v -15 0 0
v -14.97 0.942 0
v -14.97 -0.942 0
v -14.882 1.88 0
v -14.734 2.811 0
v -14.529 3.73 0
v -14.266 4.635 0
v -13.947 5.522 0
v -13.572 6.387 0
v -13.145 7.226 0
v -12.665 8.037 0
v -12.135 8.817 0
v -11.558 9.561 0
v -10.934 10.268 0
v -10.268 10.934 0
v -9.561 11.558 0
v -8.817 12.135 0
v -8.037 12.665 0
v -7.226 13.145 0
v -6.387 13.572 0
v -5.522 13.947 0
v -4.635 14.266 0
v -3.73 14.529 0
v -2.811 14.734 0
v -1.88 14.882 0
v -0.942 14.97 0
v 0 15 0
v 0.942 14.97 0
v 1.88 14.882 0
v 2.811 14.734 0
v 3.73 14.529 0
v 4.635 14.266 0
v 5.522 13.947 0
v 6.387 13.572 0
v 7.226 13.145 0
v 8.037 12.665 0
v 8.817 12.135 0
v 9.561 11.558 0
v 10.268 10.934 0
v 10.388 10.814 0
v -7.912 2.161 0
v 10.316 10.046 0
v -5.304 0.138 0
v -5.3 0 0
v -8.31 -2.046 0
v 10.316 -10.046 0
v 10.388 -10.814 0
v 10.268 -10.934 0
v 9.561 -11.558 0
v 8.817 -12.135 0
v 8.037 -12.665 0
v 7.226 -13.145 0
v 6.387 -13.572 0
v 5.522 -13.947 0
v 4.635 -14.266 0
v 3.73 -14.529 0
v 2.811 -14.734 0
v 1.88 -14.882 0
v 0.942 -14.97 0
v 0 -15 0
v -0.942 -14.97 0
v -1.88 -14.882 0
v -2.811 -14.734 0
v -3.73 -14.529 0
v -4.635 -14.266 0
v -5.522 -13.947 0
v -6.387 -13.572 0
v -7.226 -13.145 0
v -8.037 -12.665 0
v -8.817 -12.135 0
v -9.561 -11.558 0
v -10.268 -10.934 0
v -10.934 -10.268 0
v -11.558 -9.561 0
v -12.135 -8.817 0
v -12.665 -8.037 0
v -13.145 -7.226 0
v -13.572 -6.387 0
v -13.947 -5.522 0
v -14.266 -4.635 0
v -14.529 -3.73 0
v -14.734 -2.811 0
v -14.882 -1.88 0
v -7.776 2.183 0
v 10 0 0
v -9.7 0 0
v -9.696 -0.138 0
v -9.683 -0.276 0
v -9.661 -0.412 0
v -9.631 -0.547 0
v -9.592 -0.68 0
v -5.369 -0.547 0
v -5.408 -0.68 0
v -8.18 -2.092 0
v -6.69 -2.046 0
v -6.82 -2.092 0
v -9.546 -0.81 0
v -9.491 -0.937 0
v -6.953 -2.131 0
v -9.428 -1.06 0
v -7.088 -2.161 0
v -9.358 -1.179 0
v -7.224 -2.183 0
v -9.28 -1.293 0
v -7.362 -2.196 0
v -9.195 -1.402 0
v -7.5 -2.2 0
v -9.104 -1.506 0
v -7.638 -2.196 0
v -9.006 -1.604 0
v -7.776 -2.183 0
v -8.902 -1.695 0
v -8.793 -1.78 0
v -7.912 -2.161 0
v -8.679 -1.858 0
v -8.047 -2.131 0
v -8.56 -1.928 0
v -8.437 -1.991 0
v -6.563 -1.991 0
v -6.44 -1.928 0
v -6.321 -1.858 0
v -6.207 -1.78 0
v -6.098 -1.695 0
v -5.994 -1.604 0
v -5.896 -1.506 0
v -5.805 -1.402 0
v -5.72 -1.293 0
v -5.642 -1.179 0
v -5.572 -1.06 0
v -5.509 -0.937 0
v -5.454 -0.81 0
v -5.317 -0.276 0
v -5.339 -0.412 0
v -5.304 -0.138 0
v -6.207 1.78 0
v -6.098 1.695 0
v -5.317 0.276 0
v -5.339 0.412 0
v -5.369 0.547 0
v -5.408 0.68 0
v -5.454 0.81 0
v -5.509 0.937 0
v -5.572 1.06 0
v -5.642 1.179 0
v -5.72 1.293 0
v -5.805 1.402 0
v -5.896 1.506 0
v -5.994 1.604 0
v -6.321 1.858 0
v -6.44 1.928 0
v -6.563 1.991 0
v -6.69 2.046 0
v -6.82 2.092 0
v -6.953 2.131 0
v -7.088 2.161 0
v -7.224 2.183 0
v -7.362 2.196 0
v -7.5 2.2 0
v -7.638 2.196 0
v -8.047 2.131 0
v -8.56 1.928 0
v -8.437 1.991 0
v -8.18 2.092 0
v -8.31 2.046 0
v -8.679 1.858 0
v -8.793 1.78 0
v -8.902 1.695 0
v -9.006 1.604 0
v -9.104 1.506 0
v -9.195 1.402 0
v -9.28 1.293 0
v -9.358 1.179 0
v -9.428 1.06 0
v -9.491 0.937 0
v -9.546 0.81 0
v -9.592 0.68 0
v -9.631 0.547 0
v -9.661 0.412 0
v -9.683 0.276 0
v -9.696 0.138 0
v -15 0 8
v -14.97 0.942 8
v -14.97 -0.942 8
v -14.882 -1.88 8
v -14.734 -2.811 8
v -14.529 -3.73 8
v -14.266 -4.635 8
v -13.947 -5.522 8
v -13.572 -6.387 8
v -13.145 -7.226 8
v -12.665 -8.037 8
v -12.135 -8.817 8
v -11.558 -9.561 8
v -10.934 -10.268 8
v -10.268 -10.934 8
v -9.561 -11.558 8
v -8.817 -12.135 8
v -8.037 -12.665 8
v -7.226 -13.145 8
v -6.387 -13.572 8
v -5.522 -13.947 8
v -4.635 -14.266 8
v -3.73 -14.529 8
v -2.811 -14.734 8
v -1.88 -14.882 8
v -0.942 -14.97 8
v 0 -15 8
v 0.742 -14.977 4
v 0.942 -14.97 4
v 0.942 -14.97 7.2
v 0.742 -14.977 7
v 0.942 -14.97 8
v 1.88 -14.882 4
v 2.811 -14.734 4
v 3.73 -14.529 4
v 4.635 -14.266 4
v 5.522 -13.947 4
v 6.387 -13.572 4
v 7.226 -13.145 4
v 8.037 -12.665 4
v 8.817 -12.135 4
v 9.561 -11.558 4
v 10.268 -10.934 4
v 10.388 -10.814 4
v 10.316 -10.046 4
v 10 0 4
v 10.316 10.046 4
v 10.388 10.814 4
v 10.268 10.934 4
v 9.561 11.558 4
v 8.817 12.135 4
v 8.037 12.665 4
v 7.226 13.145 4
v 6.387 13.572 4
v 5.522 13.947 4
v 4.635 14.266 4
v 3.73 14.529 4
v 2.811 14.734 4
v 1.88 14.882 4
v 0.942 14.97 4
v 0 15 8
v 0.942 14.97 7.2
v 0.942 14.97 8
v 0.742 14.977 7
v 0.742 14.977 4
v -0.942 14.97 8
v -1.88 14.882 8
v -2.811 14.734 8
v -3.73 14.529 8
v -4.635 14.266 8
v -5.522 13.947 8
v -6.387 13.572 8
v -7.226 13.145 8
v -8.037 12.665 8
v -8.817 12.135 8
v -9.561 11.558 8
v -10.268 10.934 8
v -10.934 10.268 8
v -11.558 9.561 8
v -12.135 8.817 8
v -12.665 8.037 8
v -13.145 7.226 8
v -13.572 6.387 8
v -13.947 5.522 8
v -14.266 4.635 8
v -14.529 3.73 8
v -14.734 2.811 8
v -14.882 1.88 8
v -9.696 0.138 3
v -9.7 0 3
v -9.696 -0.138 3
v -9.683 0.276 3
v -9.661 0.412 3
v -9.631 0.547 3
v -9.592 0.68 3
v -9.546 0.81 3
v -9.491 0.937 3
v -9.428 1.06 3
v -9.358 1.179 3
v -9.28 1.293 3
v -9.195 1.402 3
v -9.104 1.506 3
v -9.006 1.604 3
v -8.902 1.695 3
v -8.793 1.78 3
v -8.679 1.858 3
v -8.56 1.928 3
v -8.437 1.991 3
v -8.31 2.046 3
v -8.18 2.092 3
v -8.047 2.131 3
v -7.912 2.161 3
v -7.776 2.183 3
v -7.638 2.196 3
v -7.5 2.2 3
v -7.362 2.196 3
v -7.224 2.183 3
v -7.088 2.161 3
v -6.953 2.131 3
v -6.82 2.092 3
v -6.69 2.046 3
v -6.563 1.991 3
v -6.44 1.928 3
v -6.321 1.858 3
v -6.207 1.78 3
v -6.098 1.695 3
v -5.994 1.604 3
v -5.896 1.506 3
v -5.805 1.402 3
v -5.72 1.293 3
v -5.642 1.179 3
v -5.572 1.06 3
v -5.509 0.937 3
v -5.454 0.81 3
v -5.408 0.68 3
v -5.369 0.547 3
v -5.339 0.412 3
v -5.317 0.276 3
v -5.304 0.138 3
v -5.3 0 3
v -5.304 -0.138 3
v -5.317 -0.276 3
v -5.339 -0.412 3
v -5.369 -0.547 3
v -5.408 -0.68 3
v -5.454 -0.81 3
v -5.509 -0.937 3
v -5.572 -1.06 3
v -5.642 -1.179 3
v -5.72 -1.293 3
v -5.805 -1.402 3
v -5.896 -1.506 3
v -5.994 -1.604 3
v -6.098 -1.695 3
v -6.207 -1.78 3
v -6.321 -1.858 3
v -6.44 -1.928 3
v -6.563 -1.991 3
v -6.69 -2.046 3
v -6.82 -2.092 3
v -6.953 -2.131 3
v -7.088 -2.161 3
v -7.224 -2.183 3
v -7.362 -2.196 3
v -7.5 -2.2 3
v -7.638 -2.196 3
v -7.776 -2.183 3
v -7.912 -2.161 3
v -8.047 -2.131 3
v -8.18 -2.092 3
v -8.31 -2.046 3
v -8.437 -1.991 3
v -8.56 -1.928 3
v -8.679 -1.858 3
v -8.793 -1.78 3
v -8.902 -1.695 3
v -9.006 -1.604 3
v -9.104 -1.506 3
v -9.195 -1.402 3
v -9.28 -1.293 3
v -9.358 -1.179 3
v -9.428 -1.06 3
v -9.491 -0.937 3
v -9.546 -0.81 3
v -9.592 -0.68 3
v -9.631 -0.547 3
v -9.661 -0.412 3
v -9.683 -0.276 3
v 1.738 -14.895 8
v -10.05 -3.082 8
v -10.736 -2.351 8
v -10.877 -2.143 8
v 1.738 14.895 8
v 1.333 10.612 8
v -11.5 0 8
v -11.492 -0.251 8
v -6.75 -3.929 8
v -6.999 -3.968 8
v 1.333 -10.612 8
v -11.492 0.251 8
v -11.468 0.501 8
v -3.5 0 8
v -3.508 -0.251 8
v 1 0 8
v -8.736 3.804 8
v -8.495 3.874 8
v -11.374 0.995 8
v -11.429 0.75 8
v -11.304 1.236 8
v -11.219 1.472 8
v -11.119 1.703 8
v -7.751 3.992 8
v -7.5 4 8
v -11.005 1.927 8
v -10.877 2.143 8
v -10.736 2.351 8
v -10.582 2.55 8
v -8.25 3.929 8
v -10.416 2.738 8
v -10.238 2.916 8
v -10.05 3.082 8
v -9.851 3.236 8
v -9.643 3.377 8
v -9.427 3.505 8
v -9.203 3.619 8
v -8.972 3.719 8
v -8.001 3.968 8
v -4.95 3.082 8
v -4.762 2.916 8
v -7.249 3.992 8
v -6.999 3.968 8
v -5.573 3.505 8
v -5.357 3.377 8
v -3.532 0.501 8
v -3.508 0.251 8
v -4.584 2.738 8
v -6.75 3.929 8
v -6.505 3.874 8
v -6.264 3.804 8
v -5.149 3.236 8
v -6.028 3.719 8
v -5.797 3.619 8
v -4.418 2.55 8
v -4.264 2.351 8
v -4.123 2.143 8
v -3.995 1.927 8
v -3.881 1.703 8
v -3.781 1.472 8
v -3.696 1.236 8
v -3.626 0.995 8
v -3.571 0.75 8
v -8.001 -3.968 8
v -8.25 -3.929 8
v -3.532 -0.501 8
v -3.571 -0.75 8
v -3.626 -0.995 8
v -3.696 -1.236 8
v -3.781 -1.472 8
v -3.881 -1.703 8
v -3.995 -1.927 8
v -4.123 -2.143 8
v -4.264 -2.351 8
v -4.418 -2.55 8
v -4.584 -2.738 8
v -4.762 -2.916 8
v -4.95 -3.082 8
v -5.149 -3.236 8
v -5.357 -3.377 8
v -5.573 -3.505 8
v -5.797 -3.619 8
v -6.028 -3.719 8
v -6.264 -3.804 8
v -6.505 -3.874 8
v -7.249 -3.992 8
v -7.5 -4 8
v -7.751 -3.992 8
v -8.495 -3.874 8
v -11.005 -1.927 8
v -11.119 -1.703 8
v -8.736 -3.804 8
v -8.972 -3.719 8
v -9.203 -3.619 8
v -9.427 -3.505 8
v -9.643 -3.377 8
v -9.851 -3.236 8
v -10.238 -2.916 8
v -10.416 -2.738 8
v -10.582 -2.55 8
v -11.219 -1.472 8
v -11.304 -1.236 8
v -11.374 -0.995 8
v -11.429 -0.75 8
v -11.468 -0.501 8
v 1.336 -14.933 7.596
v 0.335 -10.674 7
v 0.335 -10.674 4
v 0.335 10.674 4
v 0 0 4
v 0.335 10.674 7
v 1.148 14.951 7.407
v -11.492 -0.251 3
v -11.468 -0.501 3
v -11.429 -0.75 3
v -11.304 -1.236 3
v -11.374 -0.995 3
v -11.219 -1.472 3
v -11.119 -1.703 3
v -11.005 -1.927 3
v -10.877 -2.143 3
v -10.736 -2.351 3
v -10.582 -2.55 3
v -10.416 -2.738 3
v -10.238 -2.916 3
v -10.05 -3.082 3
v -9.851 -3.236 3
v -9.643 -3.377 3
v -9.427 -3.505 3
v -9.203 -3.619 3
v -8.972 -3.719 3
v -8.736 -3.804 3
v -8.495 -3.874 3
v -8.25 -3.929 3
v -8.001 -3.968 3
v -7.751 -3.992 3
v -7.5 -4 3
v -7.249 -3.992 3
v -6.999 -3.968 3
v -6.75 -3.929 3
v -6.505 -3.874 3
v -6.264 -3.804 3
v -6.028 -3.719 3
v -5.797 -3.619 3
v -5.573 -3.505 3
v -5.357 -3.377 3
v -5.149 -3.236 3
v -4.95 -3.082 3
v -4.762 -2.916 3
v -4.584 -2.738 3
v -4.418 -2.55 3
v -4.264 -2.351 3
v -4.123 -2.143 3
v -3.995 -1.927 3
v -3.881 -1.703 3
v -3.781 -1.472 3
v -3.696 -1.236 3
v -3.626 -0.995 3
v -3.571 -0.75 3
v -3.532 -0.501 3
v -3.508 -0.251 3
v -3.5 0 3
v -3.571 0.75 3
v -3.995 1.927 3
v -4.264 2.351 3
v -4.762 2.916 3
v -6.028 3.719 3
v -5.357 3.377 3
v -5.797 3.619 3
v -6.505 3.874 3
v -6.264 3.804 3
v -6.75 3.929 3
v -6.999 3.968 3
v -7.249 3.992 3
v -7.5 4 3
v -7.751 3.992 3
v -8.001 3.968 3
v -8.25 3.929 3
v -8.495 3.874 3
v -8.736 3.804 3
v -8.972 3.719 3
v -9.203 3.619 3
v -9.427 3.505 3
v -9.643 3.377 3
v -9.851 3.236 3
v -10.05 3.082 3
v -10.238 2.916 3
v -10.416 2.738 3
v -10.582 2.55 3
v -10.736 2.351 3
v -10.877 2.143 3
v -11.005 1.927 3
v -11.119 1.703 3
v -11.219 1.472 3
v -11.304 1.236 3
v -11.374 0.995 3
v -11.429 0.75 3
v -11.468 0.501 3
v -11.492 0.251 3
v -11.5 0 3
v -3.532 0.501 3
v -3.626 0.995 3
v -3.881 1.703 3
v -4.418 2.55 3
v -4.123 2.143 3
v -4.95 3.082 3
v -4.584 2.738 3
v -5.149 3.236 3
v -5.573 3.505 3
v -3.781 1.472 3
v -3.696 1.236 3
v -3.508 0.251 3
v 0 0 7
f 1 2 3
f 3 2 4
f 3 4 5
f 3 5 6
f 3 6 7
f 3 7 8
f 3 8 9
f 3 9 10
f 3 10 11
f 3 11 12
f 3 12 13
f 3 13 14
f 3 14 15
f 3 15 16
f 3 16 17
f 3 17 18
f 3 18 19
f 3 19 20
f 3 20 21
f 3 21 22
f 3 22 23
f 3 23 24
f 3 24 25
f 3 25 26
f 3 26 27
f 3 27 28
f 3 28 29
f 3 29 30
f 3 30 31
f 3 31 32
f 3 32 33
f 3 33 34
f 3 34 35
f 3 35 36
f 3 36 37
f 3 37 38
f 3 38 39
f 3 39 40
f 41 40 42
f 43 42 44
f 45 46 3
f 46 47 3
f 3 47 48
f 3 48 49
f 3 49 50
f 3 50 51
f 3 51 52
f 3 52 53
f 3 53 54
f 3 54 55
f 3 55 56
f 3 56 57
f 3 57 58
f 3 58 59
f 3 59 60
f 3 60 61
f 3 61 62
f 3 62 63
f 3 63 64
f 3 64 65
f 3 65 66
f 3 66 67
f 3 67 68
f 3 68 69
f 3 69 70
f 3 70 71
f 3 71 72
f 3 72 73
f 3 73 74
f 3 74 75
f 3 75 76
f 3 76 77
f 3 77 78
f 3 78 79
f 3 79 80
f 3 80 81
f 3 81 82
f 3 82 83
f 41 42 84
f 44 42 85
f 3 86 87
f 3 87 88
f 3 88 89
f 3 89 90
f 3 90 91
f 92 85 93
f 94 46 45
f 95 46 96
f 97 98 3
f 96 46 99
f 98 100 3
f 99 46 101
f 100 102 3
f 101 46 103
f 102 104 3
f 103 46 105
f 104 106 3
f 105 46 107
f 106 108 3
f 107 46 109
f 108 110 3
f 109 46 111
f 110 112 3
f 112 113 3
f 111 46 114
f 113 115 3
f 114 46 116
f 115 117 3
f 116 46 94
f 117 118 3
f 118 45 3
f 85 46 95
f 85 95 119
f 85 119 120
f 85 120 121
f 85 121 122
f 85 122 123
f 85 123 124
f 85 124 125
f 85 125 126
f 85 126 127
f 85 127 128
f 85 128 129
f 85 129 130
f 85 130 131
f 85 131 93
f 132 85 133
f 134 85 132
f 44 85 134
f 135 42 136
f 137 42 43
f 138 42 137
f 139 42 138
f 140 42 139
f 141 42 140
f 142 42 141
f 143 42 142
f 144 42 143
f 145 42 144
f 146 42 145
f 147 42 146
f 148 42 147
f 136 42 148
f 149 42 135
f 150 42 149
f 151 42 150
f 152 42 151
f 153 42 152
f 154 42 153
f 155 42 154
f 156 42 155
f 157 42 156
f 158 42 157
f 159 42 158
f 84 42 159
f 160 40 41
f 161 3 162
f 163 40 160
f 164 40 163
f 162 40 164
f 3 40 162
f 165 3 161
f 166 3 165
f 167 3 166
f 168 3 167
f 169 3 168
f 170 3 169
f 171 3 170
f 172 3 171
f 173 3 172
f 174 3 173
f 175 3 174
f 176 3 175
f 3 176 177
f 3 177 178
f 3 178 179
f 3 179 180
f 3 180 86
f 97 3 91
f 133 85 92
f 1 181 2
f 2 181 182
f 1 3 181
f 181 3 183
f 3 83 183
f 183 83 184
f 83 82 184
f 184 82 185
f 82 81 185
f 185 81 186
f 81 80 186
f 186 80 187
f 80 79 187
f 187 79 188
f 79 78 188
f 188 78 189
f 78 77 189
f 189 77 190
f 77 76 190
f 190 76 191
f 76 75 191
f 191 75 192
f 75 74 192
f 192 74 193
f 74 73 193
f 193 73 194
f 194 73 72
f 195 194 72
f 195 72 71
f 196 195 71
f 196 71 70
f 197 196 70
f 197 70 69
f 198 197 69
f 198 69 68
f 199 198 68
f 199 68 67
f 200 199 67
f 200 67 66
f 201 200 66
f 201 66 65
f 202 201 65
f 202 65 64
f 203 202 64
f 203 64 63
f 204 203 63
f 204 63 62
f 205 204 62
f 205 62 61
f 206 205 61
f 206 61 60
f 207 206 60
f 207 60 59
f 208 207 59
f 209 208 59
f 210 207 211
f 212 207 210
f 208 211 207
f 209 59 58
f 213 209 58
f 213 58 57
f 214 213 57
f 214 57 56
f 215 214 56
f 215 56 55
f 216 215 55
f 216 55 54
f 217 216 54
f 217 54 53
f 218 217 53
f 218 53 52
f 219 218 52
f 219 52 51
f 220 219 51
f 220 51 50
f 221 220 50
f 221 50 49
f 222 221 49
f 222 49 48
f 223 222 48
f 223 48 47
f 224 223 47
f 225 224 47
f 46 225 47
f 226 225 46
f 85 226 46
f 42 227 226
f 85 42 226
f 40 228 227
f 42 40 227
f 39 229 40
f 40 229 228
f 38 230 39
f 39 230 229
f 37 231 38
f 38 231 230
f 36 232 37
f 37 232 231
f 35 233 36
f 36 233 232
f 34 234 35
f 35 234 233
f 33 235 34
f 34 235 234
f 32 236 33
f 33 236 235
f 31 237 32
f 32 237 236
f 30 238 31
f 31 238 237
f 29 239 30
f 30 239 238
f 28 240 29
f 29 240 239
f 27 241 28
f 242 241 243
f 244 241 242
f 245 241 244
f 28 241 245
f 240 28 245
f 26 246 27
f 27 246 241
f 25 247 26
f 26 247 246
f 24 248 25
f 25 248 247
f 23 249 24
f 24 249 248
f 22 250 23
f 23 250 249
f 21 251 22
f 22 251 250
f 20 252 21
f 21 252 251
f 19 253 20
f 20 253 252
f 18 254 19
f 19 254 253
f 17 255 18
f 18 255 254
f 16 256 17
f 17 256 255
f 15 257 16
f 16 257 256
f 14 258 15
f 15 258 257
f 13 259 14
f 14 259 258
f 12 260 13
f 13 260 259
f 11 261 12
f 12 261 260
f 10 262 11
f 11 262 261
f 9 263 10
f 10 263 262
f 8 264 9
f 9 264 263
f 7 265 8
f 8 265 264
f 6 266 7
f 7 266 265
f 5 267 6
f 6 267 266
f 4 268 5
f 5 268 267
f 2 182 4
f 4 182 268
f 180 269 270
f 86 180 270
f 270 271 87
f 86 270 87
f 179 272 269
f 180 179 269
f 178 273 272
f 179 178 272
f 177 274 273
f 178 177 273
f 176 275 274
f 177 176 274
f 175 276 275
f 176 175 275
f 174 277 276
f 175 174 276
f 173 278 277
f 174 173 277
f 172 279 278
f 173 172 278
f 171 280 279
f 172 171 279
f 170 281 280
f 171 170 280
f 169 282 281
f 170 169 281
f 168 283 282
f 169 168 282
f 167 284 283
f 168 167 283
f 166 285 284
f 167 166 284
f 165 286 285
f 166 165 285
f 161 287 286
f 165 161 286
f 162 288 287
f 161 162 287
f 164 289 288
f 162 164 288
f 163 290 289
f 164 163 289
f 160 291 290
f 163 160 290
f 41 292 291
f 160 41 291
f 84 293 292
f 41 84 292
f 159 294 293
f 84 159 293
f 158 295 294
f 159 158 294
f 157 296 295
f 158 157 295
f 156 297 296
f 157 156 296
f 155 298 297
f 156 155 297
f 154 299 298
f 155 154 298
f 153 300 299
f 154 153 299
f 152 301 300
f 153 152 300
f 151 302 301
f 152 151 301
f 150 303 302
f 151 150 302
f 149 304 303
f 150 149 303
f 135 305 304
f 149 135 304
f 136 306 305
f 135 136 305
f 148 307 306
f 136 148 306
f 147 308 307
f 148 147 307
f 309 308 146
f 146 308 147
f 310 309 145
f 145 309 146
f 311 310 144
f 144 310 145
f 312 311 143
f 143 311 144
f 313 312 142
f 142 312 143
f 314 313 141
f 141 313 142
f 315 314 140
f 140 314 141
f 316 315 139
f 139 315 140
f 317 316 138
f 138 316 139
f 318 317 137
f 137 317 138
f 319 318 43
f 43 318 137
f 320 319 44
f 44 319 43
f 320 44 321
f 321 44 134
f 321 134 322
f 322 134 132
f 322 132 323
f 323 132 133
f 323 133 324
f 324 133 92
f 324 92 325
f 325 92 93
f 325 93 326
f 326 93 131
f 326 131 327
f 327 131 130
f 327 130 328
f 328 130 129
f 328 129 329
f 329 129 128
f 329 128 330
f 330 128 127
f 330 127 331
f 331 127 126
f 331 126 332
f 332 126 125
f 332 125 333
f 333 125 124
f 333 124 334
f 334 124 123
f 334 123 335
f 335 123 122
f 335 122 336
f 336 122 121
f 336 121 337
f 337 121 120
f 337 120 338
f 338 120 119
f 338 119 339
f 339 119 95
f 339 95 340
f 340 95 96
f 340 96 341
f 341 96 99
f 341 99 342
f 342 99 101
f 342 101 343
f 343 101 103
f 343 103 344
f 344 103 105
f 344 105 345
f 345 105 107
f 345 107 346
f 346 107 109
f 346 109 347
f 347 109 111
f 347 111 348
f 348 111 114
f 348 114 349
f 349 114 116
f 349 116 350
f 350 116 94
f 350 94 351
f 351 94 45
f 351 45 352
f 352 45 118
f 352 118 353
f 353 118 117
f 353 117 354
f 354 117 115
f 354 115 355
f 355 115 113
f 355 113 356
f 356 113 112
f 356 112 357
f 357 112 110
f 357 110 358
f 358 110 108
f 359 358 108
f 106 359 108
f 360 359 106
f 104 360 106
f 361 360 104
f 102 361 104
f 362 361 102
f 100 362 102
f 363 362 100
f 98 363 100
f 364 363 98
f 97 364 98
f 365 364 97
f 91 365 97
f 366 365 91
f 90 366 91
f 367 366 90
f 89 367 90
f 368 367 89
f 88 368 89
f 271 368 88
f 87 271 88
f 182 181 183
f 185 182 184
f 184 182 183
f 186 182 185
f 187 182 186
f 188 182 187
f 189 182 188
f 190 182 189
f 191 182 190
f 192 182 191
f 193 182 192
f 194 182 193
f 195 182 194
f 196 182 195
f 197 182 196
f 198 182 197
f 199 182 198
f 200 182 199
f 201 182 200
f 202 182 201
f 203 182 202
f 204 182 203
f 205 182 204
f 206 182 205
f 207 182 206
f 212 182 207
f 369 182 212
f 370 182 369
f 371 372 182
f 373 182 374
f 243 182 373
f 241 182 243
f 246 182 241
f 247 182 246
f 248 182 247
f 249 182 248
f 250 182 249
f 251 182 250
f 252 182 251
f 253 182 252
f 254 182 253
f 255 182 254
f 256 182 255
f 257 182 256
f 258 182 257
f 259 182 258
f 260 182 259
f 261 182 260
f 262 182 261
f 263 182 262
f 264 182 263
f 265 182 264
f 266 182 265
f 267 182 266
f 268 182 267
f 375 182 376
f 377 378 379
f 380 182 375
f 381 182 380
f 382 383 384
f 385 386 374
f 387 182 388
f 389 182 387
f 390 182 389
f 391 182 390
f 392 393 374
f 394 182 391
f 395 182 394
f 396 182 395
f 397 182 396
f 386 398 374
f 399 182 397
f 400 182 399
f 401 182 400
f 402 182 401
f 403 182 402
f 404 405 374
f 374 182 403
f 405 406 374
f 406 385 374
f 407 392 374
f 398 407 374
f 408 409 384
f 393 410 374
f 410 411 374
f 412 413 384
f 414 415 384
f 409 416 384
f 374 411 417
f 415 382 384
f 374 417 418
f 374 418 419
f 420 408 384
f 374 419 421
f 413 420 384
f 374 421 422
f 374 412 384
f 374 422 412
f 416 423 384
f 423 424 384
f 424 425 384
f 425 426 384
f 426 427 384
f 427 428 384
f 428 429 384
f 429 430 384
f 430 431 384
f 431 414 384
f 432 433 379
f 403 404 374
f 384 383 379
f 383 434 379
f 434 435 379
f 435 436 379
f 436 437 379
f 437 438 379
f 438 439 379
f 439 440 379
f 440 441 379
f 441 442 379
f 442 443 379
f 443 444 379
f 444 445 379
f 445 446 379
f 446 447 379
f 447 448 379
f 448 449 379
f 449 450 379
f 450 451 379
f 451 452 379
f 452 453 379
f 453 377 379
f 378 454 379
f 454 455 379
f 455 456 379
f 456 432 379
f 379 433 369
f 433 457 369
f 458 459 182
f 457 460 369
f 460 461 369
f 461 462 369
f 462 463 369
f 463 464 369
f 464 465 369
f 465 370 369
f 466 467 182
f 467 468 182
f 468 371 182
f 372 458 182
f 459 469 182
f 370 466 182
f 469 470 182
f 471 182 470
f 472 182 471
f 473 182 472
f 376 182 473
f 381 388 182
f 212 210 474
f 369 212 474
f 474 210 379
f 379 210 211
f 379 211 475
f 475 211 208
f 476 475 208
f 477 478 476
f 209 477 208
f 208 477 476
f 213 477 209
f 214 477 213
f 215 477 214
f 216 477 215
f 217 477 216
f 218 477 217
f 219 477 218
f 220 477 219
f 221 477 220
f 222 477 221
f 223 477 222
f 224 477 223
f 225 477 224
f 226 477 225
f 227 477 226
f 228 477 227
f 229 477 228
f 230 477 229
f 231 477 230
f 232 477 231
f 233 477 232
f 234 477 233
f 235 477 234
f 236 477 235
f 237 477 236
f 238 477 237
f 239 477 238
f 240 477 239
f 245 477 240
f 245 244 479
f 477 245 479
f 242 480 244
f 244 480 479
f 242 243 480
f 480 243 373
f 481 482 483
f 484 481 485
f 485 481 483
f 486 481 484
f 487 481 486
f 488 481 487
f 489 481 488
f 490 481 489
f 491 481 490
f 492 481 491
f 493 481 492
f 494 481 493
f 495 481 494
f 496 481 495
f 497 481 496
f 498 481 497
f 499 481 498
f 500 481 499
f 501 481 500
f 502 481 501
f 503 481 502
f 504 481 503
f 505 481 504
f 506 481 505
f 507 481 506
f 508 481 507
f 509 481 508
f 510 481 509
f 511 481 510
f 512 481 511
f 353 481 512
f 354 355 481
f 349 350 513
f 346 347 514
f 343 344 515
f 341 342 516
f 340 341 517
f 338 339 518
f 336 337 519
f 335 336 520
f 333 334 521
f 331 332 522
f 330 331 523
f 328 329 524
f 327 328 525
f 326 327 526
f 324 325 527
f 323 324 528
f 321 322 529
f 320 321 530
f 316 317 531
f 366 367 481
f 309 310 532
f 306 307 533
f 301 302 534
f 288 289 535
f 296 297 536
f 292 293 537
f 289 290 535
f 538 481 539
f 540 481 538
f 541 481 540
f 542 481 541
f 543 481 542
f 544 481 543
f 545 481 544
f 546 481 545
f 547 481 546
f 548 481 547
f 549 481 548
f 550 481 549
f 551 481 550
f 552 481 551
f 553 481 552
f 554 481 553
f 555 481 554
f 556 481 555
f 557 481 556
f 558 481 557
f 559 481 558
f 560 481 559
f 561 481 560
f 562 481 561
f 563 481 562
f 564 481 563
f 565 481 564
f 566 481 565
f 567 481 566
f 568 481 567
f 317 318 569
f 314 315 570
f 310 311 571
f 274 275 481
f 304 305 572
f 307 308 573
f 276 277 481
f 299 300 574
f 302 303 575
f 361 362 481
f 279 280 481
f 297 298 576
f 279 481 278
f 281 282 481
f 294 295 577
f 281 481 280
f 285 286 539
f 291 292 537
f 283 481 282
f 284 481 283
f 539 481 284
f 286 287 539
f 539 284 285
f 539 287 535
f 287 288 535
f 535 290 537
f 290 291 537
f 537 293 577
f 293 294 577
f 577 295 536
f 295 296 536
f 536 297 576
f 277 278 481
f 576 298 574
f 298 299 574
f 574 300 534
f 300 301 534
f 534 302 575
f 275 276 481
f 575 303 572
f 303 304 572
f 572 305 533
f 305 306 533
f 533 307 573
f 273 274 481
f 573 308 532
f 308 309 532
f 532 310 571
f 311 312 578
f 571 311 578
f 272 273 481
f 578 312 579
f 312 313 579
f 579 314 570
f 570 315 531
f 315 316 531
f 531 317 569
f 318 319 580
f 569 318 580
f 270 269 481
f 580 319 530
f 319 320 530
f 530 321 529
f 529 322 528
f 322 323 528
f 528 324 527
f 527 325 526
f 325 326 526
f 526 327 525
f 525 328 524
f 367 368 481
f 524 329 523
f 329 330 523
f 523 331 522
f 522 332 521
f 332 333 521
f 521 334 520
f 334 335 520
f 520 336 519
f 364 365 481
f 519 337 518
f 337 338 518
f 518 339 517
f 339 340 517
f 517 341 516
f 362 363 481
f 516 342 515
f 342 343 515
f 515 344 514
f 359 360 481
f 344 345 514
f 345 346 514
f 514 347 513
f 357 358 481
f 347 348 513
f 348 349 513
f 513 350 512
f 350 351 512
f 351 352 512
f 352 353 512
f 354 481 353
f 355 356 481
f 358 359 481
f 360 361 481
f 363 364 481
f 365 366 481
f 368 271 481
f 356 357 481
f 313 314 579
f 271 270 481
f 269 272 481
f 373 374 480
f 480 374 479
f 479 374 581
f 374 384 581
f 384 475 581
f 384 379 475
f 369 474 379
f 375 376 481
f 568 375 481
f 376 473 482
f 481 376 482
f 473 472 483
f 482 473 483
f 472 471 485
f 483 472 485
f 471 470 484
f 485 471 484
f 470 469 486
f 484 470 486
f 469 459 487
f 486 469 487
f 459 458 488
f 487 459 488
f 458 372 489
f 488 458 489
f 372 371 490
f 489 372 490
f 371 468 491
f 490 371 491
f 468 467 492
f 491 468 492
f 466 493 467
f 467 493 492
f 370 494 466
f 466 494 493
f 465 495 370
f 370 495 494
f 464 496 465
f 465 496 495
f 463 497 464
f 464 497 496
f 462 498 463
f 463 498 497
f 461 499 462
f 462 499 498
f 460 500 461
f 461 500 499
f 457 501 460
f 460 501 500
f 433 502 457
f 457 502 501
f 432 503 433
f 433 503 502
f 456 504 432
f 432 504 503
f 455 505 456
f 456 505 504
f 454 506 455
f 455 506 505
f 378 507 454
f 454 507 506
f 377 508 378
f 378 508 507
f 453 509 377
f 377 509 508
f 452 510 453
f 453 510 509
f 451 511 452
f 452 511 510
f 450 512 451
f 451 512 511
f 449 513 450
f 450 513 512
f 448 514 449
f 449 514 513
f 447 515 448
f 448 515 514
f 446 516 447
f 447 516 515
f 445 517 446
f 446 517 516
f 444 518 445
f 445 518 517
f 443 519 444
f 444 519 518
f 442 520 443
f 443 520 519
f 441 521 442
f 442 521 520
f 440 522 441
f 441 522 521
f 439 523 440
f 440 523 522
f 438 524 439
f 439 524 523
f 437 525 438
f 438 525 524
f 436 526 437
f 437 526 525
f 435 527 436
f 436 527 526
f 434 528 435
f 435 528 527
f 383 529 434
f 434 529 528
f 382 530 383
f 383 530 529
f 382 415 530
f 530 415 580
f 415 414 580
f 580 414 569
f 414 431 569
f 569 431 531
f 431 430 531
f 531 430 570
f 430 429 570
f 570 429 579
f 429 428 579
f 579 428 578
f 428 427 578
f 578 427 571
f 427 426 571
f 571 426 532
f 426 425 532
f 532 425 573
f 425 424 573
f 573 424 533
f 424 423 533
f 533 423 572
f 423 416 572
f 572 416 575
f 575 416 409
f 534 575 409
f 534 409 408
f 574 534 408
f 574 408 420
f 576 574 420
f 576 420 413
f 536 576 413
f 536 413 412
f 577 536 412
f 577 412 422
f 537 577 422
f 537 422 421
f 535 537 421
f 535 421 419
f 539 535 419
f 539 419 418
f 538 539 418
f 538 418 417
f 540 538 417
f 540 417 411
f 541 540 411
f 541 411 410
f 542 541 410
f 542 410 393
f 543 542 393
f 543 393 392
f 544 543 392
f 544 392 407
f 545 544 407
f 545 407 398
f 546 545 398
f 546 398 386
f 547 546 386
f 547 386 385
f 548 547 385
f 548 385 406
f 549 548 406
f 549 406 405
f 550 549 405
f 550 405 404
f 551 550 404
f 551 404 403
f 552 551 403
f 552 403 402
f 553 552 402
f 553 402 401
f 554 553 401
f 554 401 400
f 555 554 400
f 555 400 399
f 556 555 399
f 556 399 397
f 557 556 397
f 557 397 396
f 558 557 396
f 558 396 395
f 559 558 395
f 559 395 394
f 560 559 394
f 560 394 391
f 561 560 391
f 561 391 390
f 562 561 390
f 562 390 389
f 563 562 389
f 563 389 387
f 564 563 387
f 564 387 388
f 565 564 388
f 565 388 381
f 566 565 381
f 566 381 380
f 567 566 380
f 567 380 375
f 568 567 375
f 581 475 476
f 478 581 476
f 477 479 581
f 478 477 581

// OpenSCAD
   //#translate([-15,-15,0])cube([45,65,3]);
$fn=100;
difference() {
   translate([0,0,0]) cylinder(8,15,15);

   translate([-7.5,0,0]) cylinder(8,2.2,2.2);

   #translate([-7.5,0,3]) cylinder(5,4,4);

   translate([170,0,0]) cylinder(4,160,160);

   translate([170,0,4]) cylinder(3,170,170);

   translate([170,0,7]) cylinder(1,170,169);

}
